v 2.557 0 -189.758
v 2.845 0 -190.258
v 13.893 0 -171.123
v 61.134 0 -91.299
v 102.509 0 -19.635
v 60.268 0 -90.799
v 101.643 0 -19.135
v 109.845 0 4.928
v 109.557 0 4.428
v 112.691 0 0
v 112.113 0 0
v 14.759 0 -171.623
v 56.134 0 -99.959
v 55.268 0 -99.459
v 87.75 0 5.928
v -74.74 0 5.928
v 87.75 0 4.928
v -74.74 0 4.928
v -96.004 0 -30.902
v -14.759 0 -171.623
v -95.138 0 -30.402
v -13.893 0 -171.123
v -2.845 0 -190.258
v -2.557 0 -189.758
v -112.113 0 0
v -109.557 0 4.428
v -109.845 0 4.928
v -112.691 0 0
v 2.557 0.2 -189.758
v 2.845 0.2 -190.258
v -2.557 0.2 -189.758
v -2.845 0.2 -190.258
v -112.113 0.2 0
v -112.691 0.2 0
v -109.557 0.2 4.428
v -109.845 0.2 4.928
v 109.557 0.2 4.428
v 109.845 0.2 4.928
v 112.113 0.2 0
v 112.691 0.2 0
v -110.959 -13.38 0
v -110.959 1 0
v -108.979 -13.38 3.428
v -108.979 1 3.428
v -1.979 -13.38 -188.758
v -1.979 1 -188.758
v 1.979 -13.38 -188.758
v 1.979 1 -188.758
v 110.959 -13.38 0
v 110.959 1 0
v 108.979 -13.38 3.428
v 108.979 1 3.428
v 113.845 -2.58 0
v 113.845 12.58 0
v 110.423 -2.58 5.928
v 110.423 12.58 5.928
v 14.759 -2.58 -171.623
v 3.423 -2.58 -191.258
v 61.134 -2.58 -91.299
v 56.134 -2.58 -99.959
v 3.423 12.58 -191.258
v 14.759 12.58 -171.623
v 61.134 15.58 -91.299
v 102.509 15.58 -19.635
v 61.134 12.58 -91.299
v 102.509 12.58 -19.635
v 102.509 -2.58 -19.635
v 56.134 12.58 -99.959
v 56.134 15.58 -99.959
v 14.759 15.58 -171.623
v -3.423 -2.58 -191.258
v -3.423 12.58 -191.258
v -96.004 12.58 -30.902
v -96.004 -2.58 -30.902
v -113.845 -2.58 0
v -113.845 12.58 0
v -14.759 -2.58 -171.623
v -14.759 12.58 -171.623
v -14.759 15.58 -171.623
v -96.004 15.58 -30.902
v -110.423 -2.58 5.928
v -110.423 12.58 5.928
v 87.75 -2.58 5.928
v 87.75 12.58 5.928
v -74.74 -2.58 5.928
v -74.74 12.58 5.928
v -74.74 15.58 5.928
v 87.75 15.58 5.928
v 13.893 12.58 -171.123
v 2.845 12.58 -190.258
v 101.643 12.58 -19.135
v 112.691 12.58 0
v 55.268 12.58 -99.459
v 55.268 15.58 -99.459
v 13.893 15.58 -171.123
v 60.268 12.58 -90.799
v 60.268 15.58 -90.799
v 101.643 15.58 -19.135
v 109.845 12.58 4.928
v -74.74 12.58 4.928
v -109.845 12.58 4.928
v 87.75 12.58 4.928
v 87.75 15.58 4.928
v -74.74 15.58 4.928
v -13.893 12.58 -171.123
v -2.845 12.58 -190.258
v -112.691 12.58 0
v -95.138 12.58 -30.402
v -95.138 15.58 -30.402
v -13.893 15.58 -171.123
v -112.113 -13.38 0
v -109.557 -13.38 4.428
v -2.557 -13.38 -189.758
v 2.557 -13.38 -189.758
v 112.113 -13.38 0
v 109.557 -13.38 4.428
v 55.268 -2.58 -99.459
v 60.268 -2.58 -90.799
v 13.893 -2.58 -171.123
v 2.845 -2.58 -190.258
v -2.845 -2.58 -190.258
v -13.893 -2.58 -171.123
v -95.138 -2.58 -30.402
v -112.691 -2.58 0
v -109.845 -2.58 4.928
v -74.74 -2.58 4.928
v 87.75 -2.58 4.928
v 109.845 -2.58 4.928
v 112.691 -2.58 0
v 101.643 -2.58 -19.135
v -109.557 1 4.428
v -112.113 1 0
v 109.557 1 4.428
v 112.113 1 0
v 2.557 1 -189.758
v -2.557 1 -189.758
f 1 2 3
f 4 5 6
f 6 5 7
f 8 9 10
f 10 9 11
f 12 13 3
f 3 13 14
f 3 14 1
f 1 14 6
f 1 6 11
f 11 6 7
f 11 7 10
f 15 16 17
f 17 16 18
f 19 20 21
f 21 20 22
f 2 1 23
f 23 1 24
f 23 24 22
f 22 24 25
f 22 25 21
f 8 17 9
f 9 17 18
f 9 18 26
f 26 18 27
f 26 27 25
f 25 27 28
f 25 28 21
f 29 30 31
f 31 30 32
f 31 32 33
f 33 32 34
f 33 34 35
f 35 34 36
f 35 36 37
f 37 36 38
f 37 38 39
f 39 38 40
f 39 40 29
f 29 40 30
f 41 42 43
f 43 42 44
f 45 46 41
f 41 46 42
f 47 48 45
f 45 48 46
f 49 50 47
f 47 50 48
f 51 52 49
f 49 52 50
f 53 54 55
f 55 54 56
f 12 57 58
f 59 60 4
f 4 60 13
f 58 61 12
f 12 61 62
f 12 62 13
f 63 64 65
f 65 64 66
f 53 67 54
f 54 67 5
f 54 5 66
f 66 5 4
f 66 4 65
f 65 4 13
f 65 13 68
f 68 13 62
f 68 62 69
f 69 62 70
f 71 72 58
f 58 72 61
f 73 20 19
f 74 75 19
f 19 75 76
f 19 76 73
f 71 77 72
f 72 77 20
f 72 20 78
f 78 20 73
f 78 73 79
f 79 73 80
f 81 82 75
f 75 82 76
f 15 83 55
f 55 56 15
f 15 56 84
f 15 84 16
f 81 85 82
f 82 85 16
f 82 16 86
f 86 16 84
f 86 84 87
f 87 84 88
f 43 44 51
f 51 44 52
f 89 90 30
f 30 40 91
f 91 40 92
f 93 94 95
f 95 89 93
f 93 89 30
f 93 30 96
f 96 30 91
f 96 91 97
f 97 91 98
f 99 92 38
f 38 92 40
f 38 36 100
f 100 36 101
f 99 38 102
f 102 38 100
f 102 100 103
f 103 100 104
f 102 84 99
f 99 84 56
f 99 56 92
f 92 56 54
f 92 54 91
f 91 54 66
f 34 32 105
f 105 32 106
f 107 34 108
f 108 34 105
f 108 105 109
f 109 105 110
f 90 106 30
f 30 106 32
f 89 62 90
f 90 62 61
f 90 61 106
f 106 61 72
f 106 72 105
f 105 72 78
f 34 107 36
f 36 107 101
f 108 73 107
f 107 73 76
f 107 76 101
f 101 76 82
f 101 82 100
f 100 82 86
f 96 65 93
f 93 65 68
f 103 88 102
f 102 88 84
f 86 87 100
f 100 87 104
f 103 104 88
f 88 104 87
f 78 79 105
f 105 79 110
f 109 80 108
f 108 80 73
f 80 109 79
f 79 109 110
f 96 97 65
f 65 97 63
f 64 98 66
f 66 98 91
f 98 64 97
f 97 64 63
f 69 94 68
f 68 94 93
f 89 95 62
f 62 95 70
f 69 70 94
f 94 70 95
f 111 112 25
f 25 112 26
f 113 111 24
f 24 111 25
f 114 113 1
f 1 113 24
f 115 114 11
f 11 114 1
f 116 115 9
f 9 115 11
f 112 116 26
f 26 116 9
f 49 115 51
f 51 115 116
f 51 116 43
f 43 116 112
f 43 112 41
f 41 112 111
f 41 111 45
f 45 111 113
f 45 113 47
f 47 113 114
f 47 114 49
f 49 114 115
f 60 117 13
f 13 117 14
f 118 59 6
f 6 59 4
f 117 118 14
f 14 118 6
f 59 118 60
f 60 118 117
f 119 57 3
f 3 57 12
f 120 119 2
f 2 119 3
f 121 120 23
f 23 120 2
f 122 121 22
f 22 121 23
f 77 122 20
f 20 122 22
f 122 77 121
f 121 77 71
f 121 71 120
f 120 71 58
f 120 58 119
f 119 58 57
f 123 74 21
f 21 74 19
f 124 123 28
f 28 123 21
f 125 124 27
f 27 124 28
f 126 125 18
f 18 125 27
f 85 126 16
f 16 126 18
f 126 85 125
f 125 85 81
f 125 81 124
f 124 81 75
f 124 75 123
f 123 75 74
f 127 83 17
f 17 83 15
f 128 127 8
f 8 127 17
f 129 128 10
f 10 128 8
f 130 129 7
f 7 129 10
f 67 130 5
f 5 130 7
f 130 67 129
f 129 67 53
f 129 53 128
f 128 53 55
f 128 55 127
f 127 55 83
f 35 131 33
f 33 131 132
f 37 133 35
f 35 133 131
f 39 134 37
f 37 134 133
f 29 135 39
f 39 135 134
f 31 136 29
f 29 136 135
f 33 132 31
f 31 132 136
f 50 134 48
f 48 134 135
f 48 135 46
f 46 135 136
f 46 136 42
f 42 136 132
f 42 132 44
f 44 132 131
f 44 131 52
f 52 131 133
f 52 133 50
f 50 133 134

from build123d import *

# Parameters (mm, degrees)
BOSS_EXTRUDE1_DEPTH = 0.2
BOSS_EXTRUDE2_DEPTH = 12.58
SKETCH1_8_W         = 162.49
SKETCH1_8_H         = 1
BOSS_EXTRUDE3_DEPTH = 15.58
BOSS_EXTRUDE4_DEPTH = 13.38
BOSS_EXTRUDE5_DEPTH = 2.58
BOSS_EXTRUDE6_DEPTH = 1


with BuildPart() as part:
    # Sketch1 → Boss-Extrude1 (new body)
    with BuildSketch(Plane(origin=(0, 0, 0), x_dir=(1, 0, 0), z_dir=(0, 1, 0))):
        Polygon((-113.845299462, 0), (-110.422649731, -5.92820323), (110.422649731, -5.92820323), (113.845299462, 0), (3.422649731, 191.25763964), (-3.422649731, 191.25763964), align=None)
        Polygon((-1.979274058, 188.75763964), (1.979274058, 188.75763964), (110.958548116, 0), (108.979274058, -3.42820323), (-108.979274058, -3.42820323), (-110.958548116, 0), align=None, mode=Mode.SUBTRACT)
    extrude(amount=BOSS_EXTRUDE1_DEPTH)

    # Sketch1<7> → Boss-Extrude2 (add)
    with BuildSketch(Plane(origin=(0, 0, 0), x_dir=(1, 0, 0), z_dir=(0, 1, 0))):
        Polygon((-95.137949192, 30.402081141), (-96.003974596, 30.902081141), (-113.845299462, 0), (-110.422649731, -5.92820323), (-74.74, -5.92820323), (-74.74, -4.92820323), (-109.845299462, -4.92820323), (-112.690598923, 0), align=None)
        Polygon((-3.422649731, 191.25763964), (-14.758974596, 171.622549002), (-13.892949192, 171.122549002), (-2.845299462, 190.25763964), (2.845299462, 190.25763964), (13.892949192, 171.122549002), (14.758974596, 171.622549002), (3.422649731, 191.25763964), align=None)
        Polygon((109.845299462, -4.92820323), (87.75, -4.92820323), (87.75, -5.92820323), (110.422649731, -5.92820323), (113.845299462, 0), (102.508974596, 19.635090638), (101.642949192, 19.135090638), (112.690598923, 0), align=None)
        Polygon((61.133974596, 91.298692801), (56.133974596, 99.958946839), (55.267949192, 99.458946839), (60.267949192, 90.798692801), align=None)
    extrude(amount=BOSS_EXTRUDE2_DEPTH)

    # Sketch1<8> → Boss-Extrude3 (add)
    with BuildSketch(Plane(origin=(0, 0, 0), x_dir=(1, 0, 0), z_dir=(0, 1, 0))):
        Polygon((-14.758974596, 171.622549002), (-96.003974596, 30.902081141), (-95.137949192, 30.402081141), (-13.892949192, 171.122549002), align=None)
        with Locations((6.505, -5.42820323)):
            Rectangle(SKETCH1_8_W, SKETCH1_8_H)
        Polygon((56.133974596, 99.958946839), (14.758974596, 171.622549002), (13.892949192, 171.122549002), (55.267949192, 99.458946839), align=None)
        Polygon((102.508974596, 19.635090638), (61.133974596, 91.298692801), (60.267949192, 90.798692801), (101.642949192, 19.135090638), align=None)
    extrude(amount=BOSS_EXTRUDE3_DEPTH)

    # Sketch1<9> → Boss-Extrude4 (add)
    with BuildSketch(Plane(origin=(0, 0, 0), x_dir=(1, 0, 0), z_dir=(0, 1, 0))):
        Polygon((-112.113248654, 0), (-110.834936491, -2.214101615), (-109.556624327, -4.42820323), (109.556624327, -4.42820323), (112.113248654, 0), (2.556624327, 189.75763964), (-2.556624327, 189.75763964), align=None)
        Polygon((-110.958548116, 0), (-56.468911087, 94.37881982), (-1.979274058, 188.75763964), (1.979274058, 188.75763964), (110.958548116, 0), (108.979274058, -3.42820323), (-108.979274058, -3.42820323), align=None, mode=Mode.SUBTRACT)
    extrude(amount=-BOSS_EXTRUDE4_DEPTH)

    # Sketch1<10> → Boss-Extrude5 (add)
    with BuildSketch(Plane(origin=(0, 0, 0), x_dir=(1, 0, 0), z_dir=(0, 1, 0))):
        Polygon((-95.137949192, 30.402081141), (-96.003974596, 30.902081141), (-113.845299462, 0), (-110.422649731, -5.92820323), (-74.74, -5.92820323), (-74.74, -4.92820323), (-109.845299462, -4.92820323), (-112.690598923, 0), align=None)
        Polygon((-3.422649731, 191.25763964), (-14.758974596, 171.622549002), (-13.892949192, 171.122549002), (-2.845299462, 190.25763964), (2.845299462, 190.25763964), (13.892949192, 171.122549002), (14.758974596, 171.622549002), (3.422649731, 191.25763964), align=None)
        Polygon((109.845299462, -4.92820323), (87.75, -4.92820323), (87.75, -5.92820323), (110.422649731, -5.92820323), (113.845299462, 0), (102.508974596, 19.635090638), (101.642949192, 19.135090638), (112.690598923, 0), align=None)
        Polygon((61.133974596, 91.298692801), (56.133974596, 99.958946839), (55.267949192, 99.458946839), (60.267949192, 90.798692801), align=None)
    extrude(amount=-BOSS_EXTRUDE5_DEPTH)

    # Sketch1<11> → Boss-Extrude6 (add)
    with BuildSketch(Plane(origin=(0, 0, 0), x_dir=(1, 0, 0), z_dir=(0, 1, 0))):
        Polygon((-112.113248654, 0), (-110.834936491, -2.214101615), (-109.556624327, -4.42820323), (109.556624327, -4.42820323), (112.113248654, 0), (2.556624327, 189.75763964), (-2.556624327, 189.75763964), align=None)
        Polygon((-110.958548116, 0), (-56.468911087, 94.37881982), (-1.979274058, 188.75763964), (1.979274058, 188.75763964), (110.958548116, 0), (108.979274058, -3.42820323), (-108.979274058, -3.42820323), align=None, mode=Mode.SUBTRACT)
    extrude(amount=BOSS_EXTRUDE6_DEPTH)


solid = part.part
